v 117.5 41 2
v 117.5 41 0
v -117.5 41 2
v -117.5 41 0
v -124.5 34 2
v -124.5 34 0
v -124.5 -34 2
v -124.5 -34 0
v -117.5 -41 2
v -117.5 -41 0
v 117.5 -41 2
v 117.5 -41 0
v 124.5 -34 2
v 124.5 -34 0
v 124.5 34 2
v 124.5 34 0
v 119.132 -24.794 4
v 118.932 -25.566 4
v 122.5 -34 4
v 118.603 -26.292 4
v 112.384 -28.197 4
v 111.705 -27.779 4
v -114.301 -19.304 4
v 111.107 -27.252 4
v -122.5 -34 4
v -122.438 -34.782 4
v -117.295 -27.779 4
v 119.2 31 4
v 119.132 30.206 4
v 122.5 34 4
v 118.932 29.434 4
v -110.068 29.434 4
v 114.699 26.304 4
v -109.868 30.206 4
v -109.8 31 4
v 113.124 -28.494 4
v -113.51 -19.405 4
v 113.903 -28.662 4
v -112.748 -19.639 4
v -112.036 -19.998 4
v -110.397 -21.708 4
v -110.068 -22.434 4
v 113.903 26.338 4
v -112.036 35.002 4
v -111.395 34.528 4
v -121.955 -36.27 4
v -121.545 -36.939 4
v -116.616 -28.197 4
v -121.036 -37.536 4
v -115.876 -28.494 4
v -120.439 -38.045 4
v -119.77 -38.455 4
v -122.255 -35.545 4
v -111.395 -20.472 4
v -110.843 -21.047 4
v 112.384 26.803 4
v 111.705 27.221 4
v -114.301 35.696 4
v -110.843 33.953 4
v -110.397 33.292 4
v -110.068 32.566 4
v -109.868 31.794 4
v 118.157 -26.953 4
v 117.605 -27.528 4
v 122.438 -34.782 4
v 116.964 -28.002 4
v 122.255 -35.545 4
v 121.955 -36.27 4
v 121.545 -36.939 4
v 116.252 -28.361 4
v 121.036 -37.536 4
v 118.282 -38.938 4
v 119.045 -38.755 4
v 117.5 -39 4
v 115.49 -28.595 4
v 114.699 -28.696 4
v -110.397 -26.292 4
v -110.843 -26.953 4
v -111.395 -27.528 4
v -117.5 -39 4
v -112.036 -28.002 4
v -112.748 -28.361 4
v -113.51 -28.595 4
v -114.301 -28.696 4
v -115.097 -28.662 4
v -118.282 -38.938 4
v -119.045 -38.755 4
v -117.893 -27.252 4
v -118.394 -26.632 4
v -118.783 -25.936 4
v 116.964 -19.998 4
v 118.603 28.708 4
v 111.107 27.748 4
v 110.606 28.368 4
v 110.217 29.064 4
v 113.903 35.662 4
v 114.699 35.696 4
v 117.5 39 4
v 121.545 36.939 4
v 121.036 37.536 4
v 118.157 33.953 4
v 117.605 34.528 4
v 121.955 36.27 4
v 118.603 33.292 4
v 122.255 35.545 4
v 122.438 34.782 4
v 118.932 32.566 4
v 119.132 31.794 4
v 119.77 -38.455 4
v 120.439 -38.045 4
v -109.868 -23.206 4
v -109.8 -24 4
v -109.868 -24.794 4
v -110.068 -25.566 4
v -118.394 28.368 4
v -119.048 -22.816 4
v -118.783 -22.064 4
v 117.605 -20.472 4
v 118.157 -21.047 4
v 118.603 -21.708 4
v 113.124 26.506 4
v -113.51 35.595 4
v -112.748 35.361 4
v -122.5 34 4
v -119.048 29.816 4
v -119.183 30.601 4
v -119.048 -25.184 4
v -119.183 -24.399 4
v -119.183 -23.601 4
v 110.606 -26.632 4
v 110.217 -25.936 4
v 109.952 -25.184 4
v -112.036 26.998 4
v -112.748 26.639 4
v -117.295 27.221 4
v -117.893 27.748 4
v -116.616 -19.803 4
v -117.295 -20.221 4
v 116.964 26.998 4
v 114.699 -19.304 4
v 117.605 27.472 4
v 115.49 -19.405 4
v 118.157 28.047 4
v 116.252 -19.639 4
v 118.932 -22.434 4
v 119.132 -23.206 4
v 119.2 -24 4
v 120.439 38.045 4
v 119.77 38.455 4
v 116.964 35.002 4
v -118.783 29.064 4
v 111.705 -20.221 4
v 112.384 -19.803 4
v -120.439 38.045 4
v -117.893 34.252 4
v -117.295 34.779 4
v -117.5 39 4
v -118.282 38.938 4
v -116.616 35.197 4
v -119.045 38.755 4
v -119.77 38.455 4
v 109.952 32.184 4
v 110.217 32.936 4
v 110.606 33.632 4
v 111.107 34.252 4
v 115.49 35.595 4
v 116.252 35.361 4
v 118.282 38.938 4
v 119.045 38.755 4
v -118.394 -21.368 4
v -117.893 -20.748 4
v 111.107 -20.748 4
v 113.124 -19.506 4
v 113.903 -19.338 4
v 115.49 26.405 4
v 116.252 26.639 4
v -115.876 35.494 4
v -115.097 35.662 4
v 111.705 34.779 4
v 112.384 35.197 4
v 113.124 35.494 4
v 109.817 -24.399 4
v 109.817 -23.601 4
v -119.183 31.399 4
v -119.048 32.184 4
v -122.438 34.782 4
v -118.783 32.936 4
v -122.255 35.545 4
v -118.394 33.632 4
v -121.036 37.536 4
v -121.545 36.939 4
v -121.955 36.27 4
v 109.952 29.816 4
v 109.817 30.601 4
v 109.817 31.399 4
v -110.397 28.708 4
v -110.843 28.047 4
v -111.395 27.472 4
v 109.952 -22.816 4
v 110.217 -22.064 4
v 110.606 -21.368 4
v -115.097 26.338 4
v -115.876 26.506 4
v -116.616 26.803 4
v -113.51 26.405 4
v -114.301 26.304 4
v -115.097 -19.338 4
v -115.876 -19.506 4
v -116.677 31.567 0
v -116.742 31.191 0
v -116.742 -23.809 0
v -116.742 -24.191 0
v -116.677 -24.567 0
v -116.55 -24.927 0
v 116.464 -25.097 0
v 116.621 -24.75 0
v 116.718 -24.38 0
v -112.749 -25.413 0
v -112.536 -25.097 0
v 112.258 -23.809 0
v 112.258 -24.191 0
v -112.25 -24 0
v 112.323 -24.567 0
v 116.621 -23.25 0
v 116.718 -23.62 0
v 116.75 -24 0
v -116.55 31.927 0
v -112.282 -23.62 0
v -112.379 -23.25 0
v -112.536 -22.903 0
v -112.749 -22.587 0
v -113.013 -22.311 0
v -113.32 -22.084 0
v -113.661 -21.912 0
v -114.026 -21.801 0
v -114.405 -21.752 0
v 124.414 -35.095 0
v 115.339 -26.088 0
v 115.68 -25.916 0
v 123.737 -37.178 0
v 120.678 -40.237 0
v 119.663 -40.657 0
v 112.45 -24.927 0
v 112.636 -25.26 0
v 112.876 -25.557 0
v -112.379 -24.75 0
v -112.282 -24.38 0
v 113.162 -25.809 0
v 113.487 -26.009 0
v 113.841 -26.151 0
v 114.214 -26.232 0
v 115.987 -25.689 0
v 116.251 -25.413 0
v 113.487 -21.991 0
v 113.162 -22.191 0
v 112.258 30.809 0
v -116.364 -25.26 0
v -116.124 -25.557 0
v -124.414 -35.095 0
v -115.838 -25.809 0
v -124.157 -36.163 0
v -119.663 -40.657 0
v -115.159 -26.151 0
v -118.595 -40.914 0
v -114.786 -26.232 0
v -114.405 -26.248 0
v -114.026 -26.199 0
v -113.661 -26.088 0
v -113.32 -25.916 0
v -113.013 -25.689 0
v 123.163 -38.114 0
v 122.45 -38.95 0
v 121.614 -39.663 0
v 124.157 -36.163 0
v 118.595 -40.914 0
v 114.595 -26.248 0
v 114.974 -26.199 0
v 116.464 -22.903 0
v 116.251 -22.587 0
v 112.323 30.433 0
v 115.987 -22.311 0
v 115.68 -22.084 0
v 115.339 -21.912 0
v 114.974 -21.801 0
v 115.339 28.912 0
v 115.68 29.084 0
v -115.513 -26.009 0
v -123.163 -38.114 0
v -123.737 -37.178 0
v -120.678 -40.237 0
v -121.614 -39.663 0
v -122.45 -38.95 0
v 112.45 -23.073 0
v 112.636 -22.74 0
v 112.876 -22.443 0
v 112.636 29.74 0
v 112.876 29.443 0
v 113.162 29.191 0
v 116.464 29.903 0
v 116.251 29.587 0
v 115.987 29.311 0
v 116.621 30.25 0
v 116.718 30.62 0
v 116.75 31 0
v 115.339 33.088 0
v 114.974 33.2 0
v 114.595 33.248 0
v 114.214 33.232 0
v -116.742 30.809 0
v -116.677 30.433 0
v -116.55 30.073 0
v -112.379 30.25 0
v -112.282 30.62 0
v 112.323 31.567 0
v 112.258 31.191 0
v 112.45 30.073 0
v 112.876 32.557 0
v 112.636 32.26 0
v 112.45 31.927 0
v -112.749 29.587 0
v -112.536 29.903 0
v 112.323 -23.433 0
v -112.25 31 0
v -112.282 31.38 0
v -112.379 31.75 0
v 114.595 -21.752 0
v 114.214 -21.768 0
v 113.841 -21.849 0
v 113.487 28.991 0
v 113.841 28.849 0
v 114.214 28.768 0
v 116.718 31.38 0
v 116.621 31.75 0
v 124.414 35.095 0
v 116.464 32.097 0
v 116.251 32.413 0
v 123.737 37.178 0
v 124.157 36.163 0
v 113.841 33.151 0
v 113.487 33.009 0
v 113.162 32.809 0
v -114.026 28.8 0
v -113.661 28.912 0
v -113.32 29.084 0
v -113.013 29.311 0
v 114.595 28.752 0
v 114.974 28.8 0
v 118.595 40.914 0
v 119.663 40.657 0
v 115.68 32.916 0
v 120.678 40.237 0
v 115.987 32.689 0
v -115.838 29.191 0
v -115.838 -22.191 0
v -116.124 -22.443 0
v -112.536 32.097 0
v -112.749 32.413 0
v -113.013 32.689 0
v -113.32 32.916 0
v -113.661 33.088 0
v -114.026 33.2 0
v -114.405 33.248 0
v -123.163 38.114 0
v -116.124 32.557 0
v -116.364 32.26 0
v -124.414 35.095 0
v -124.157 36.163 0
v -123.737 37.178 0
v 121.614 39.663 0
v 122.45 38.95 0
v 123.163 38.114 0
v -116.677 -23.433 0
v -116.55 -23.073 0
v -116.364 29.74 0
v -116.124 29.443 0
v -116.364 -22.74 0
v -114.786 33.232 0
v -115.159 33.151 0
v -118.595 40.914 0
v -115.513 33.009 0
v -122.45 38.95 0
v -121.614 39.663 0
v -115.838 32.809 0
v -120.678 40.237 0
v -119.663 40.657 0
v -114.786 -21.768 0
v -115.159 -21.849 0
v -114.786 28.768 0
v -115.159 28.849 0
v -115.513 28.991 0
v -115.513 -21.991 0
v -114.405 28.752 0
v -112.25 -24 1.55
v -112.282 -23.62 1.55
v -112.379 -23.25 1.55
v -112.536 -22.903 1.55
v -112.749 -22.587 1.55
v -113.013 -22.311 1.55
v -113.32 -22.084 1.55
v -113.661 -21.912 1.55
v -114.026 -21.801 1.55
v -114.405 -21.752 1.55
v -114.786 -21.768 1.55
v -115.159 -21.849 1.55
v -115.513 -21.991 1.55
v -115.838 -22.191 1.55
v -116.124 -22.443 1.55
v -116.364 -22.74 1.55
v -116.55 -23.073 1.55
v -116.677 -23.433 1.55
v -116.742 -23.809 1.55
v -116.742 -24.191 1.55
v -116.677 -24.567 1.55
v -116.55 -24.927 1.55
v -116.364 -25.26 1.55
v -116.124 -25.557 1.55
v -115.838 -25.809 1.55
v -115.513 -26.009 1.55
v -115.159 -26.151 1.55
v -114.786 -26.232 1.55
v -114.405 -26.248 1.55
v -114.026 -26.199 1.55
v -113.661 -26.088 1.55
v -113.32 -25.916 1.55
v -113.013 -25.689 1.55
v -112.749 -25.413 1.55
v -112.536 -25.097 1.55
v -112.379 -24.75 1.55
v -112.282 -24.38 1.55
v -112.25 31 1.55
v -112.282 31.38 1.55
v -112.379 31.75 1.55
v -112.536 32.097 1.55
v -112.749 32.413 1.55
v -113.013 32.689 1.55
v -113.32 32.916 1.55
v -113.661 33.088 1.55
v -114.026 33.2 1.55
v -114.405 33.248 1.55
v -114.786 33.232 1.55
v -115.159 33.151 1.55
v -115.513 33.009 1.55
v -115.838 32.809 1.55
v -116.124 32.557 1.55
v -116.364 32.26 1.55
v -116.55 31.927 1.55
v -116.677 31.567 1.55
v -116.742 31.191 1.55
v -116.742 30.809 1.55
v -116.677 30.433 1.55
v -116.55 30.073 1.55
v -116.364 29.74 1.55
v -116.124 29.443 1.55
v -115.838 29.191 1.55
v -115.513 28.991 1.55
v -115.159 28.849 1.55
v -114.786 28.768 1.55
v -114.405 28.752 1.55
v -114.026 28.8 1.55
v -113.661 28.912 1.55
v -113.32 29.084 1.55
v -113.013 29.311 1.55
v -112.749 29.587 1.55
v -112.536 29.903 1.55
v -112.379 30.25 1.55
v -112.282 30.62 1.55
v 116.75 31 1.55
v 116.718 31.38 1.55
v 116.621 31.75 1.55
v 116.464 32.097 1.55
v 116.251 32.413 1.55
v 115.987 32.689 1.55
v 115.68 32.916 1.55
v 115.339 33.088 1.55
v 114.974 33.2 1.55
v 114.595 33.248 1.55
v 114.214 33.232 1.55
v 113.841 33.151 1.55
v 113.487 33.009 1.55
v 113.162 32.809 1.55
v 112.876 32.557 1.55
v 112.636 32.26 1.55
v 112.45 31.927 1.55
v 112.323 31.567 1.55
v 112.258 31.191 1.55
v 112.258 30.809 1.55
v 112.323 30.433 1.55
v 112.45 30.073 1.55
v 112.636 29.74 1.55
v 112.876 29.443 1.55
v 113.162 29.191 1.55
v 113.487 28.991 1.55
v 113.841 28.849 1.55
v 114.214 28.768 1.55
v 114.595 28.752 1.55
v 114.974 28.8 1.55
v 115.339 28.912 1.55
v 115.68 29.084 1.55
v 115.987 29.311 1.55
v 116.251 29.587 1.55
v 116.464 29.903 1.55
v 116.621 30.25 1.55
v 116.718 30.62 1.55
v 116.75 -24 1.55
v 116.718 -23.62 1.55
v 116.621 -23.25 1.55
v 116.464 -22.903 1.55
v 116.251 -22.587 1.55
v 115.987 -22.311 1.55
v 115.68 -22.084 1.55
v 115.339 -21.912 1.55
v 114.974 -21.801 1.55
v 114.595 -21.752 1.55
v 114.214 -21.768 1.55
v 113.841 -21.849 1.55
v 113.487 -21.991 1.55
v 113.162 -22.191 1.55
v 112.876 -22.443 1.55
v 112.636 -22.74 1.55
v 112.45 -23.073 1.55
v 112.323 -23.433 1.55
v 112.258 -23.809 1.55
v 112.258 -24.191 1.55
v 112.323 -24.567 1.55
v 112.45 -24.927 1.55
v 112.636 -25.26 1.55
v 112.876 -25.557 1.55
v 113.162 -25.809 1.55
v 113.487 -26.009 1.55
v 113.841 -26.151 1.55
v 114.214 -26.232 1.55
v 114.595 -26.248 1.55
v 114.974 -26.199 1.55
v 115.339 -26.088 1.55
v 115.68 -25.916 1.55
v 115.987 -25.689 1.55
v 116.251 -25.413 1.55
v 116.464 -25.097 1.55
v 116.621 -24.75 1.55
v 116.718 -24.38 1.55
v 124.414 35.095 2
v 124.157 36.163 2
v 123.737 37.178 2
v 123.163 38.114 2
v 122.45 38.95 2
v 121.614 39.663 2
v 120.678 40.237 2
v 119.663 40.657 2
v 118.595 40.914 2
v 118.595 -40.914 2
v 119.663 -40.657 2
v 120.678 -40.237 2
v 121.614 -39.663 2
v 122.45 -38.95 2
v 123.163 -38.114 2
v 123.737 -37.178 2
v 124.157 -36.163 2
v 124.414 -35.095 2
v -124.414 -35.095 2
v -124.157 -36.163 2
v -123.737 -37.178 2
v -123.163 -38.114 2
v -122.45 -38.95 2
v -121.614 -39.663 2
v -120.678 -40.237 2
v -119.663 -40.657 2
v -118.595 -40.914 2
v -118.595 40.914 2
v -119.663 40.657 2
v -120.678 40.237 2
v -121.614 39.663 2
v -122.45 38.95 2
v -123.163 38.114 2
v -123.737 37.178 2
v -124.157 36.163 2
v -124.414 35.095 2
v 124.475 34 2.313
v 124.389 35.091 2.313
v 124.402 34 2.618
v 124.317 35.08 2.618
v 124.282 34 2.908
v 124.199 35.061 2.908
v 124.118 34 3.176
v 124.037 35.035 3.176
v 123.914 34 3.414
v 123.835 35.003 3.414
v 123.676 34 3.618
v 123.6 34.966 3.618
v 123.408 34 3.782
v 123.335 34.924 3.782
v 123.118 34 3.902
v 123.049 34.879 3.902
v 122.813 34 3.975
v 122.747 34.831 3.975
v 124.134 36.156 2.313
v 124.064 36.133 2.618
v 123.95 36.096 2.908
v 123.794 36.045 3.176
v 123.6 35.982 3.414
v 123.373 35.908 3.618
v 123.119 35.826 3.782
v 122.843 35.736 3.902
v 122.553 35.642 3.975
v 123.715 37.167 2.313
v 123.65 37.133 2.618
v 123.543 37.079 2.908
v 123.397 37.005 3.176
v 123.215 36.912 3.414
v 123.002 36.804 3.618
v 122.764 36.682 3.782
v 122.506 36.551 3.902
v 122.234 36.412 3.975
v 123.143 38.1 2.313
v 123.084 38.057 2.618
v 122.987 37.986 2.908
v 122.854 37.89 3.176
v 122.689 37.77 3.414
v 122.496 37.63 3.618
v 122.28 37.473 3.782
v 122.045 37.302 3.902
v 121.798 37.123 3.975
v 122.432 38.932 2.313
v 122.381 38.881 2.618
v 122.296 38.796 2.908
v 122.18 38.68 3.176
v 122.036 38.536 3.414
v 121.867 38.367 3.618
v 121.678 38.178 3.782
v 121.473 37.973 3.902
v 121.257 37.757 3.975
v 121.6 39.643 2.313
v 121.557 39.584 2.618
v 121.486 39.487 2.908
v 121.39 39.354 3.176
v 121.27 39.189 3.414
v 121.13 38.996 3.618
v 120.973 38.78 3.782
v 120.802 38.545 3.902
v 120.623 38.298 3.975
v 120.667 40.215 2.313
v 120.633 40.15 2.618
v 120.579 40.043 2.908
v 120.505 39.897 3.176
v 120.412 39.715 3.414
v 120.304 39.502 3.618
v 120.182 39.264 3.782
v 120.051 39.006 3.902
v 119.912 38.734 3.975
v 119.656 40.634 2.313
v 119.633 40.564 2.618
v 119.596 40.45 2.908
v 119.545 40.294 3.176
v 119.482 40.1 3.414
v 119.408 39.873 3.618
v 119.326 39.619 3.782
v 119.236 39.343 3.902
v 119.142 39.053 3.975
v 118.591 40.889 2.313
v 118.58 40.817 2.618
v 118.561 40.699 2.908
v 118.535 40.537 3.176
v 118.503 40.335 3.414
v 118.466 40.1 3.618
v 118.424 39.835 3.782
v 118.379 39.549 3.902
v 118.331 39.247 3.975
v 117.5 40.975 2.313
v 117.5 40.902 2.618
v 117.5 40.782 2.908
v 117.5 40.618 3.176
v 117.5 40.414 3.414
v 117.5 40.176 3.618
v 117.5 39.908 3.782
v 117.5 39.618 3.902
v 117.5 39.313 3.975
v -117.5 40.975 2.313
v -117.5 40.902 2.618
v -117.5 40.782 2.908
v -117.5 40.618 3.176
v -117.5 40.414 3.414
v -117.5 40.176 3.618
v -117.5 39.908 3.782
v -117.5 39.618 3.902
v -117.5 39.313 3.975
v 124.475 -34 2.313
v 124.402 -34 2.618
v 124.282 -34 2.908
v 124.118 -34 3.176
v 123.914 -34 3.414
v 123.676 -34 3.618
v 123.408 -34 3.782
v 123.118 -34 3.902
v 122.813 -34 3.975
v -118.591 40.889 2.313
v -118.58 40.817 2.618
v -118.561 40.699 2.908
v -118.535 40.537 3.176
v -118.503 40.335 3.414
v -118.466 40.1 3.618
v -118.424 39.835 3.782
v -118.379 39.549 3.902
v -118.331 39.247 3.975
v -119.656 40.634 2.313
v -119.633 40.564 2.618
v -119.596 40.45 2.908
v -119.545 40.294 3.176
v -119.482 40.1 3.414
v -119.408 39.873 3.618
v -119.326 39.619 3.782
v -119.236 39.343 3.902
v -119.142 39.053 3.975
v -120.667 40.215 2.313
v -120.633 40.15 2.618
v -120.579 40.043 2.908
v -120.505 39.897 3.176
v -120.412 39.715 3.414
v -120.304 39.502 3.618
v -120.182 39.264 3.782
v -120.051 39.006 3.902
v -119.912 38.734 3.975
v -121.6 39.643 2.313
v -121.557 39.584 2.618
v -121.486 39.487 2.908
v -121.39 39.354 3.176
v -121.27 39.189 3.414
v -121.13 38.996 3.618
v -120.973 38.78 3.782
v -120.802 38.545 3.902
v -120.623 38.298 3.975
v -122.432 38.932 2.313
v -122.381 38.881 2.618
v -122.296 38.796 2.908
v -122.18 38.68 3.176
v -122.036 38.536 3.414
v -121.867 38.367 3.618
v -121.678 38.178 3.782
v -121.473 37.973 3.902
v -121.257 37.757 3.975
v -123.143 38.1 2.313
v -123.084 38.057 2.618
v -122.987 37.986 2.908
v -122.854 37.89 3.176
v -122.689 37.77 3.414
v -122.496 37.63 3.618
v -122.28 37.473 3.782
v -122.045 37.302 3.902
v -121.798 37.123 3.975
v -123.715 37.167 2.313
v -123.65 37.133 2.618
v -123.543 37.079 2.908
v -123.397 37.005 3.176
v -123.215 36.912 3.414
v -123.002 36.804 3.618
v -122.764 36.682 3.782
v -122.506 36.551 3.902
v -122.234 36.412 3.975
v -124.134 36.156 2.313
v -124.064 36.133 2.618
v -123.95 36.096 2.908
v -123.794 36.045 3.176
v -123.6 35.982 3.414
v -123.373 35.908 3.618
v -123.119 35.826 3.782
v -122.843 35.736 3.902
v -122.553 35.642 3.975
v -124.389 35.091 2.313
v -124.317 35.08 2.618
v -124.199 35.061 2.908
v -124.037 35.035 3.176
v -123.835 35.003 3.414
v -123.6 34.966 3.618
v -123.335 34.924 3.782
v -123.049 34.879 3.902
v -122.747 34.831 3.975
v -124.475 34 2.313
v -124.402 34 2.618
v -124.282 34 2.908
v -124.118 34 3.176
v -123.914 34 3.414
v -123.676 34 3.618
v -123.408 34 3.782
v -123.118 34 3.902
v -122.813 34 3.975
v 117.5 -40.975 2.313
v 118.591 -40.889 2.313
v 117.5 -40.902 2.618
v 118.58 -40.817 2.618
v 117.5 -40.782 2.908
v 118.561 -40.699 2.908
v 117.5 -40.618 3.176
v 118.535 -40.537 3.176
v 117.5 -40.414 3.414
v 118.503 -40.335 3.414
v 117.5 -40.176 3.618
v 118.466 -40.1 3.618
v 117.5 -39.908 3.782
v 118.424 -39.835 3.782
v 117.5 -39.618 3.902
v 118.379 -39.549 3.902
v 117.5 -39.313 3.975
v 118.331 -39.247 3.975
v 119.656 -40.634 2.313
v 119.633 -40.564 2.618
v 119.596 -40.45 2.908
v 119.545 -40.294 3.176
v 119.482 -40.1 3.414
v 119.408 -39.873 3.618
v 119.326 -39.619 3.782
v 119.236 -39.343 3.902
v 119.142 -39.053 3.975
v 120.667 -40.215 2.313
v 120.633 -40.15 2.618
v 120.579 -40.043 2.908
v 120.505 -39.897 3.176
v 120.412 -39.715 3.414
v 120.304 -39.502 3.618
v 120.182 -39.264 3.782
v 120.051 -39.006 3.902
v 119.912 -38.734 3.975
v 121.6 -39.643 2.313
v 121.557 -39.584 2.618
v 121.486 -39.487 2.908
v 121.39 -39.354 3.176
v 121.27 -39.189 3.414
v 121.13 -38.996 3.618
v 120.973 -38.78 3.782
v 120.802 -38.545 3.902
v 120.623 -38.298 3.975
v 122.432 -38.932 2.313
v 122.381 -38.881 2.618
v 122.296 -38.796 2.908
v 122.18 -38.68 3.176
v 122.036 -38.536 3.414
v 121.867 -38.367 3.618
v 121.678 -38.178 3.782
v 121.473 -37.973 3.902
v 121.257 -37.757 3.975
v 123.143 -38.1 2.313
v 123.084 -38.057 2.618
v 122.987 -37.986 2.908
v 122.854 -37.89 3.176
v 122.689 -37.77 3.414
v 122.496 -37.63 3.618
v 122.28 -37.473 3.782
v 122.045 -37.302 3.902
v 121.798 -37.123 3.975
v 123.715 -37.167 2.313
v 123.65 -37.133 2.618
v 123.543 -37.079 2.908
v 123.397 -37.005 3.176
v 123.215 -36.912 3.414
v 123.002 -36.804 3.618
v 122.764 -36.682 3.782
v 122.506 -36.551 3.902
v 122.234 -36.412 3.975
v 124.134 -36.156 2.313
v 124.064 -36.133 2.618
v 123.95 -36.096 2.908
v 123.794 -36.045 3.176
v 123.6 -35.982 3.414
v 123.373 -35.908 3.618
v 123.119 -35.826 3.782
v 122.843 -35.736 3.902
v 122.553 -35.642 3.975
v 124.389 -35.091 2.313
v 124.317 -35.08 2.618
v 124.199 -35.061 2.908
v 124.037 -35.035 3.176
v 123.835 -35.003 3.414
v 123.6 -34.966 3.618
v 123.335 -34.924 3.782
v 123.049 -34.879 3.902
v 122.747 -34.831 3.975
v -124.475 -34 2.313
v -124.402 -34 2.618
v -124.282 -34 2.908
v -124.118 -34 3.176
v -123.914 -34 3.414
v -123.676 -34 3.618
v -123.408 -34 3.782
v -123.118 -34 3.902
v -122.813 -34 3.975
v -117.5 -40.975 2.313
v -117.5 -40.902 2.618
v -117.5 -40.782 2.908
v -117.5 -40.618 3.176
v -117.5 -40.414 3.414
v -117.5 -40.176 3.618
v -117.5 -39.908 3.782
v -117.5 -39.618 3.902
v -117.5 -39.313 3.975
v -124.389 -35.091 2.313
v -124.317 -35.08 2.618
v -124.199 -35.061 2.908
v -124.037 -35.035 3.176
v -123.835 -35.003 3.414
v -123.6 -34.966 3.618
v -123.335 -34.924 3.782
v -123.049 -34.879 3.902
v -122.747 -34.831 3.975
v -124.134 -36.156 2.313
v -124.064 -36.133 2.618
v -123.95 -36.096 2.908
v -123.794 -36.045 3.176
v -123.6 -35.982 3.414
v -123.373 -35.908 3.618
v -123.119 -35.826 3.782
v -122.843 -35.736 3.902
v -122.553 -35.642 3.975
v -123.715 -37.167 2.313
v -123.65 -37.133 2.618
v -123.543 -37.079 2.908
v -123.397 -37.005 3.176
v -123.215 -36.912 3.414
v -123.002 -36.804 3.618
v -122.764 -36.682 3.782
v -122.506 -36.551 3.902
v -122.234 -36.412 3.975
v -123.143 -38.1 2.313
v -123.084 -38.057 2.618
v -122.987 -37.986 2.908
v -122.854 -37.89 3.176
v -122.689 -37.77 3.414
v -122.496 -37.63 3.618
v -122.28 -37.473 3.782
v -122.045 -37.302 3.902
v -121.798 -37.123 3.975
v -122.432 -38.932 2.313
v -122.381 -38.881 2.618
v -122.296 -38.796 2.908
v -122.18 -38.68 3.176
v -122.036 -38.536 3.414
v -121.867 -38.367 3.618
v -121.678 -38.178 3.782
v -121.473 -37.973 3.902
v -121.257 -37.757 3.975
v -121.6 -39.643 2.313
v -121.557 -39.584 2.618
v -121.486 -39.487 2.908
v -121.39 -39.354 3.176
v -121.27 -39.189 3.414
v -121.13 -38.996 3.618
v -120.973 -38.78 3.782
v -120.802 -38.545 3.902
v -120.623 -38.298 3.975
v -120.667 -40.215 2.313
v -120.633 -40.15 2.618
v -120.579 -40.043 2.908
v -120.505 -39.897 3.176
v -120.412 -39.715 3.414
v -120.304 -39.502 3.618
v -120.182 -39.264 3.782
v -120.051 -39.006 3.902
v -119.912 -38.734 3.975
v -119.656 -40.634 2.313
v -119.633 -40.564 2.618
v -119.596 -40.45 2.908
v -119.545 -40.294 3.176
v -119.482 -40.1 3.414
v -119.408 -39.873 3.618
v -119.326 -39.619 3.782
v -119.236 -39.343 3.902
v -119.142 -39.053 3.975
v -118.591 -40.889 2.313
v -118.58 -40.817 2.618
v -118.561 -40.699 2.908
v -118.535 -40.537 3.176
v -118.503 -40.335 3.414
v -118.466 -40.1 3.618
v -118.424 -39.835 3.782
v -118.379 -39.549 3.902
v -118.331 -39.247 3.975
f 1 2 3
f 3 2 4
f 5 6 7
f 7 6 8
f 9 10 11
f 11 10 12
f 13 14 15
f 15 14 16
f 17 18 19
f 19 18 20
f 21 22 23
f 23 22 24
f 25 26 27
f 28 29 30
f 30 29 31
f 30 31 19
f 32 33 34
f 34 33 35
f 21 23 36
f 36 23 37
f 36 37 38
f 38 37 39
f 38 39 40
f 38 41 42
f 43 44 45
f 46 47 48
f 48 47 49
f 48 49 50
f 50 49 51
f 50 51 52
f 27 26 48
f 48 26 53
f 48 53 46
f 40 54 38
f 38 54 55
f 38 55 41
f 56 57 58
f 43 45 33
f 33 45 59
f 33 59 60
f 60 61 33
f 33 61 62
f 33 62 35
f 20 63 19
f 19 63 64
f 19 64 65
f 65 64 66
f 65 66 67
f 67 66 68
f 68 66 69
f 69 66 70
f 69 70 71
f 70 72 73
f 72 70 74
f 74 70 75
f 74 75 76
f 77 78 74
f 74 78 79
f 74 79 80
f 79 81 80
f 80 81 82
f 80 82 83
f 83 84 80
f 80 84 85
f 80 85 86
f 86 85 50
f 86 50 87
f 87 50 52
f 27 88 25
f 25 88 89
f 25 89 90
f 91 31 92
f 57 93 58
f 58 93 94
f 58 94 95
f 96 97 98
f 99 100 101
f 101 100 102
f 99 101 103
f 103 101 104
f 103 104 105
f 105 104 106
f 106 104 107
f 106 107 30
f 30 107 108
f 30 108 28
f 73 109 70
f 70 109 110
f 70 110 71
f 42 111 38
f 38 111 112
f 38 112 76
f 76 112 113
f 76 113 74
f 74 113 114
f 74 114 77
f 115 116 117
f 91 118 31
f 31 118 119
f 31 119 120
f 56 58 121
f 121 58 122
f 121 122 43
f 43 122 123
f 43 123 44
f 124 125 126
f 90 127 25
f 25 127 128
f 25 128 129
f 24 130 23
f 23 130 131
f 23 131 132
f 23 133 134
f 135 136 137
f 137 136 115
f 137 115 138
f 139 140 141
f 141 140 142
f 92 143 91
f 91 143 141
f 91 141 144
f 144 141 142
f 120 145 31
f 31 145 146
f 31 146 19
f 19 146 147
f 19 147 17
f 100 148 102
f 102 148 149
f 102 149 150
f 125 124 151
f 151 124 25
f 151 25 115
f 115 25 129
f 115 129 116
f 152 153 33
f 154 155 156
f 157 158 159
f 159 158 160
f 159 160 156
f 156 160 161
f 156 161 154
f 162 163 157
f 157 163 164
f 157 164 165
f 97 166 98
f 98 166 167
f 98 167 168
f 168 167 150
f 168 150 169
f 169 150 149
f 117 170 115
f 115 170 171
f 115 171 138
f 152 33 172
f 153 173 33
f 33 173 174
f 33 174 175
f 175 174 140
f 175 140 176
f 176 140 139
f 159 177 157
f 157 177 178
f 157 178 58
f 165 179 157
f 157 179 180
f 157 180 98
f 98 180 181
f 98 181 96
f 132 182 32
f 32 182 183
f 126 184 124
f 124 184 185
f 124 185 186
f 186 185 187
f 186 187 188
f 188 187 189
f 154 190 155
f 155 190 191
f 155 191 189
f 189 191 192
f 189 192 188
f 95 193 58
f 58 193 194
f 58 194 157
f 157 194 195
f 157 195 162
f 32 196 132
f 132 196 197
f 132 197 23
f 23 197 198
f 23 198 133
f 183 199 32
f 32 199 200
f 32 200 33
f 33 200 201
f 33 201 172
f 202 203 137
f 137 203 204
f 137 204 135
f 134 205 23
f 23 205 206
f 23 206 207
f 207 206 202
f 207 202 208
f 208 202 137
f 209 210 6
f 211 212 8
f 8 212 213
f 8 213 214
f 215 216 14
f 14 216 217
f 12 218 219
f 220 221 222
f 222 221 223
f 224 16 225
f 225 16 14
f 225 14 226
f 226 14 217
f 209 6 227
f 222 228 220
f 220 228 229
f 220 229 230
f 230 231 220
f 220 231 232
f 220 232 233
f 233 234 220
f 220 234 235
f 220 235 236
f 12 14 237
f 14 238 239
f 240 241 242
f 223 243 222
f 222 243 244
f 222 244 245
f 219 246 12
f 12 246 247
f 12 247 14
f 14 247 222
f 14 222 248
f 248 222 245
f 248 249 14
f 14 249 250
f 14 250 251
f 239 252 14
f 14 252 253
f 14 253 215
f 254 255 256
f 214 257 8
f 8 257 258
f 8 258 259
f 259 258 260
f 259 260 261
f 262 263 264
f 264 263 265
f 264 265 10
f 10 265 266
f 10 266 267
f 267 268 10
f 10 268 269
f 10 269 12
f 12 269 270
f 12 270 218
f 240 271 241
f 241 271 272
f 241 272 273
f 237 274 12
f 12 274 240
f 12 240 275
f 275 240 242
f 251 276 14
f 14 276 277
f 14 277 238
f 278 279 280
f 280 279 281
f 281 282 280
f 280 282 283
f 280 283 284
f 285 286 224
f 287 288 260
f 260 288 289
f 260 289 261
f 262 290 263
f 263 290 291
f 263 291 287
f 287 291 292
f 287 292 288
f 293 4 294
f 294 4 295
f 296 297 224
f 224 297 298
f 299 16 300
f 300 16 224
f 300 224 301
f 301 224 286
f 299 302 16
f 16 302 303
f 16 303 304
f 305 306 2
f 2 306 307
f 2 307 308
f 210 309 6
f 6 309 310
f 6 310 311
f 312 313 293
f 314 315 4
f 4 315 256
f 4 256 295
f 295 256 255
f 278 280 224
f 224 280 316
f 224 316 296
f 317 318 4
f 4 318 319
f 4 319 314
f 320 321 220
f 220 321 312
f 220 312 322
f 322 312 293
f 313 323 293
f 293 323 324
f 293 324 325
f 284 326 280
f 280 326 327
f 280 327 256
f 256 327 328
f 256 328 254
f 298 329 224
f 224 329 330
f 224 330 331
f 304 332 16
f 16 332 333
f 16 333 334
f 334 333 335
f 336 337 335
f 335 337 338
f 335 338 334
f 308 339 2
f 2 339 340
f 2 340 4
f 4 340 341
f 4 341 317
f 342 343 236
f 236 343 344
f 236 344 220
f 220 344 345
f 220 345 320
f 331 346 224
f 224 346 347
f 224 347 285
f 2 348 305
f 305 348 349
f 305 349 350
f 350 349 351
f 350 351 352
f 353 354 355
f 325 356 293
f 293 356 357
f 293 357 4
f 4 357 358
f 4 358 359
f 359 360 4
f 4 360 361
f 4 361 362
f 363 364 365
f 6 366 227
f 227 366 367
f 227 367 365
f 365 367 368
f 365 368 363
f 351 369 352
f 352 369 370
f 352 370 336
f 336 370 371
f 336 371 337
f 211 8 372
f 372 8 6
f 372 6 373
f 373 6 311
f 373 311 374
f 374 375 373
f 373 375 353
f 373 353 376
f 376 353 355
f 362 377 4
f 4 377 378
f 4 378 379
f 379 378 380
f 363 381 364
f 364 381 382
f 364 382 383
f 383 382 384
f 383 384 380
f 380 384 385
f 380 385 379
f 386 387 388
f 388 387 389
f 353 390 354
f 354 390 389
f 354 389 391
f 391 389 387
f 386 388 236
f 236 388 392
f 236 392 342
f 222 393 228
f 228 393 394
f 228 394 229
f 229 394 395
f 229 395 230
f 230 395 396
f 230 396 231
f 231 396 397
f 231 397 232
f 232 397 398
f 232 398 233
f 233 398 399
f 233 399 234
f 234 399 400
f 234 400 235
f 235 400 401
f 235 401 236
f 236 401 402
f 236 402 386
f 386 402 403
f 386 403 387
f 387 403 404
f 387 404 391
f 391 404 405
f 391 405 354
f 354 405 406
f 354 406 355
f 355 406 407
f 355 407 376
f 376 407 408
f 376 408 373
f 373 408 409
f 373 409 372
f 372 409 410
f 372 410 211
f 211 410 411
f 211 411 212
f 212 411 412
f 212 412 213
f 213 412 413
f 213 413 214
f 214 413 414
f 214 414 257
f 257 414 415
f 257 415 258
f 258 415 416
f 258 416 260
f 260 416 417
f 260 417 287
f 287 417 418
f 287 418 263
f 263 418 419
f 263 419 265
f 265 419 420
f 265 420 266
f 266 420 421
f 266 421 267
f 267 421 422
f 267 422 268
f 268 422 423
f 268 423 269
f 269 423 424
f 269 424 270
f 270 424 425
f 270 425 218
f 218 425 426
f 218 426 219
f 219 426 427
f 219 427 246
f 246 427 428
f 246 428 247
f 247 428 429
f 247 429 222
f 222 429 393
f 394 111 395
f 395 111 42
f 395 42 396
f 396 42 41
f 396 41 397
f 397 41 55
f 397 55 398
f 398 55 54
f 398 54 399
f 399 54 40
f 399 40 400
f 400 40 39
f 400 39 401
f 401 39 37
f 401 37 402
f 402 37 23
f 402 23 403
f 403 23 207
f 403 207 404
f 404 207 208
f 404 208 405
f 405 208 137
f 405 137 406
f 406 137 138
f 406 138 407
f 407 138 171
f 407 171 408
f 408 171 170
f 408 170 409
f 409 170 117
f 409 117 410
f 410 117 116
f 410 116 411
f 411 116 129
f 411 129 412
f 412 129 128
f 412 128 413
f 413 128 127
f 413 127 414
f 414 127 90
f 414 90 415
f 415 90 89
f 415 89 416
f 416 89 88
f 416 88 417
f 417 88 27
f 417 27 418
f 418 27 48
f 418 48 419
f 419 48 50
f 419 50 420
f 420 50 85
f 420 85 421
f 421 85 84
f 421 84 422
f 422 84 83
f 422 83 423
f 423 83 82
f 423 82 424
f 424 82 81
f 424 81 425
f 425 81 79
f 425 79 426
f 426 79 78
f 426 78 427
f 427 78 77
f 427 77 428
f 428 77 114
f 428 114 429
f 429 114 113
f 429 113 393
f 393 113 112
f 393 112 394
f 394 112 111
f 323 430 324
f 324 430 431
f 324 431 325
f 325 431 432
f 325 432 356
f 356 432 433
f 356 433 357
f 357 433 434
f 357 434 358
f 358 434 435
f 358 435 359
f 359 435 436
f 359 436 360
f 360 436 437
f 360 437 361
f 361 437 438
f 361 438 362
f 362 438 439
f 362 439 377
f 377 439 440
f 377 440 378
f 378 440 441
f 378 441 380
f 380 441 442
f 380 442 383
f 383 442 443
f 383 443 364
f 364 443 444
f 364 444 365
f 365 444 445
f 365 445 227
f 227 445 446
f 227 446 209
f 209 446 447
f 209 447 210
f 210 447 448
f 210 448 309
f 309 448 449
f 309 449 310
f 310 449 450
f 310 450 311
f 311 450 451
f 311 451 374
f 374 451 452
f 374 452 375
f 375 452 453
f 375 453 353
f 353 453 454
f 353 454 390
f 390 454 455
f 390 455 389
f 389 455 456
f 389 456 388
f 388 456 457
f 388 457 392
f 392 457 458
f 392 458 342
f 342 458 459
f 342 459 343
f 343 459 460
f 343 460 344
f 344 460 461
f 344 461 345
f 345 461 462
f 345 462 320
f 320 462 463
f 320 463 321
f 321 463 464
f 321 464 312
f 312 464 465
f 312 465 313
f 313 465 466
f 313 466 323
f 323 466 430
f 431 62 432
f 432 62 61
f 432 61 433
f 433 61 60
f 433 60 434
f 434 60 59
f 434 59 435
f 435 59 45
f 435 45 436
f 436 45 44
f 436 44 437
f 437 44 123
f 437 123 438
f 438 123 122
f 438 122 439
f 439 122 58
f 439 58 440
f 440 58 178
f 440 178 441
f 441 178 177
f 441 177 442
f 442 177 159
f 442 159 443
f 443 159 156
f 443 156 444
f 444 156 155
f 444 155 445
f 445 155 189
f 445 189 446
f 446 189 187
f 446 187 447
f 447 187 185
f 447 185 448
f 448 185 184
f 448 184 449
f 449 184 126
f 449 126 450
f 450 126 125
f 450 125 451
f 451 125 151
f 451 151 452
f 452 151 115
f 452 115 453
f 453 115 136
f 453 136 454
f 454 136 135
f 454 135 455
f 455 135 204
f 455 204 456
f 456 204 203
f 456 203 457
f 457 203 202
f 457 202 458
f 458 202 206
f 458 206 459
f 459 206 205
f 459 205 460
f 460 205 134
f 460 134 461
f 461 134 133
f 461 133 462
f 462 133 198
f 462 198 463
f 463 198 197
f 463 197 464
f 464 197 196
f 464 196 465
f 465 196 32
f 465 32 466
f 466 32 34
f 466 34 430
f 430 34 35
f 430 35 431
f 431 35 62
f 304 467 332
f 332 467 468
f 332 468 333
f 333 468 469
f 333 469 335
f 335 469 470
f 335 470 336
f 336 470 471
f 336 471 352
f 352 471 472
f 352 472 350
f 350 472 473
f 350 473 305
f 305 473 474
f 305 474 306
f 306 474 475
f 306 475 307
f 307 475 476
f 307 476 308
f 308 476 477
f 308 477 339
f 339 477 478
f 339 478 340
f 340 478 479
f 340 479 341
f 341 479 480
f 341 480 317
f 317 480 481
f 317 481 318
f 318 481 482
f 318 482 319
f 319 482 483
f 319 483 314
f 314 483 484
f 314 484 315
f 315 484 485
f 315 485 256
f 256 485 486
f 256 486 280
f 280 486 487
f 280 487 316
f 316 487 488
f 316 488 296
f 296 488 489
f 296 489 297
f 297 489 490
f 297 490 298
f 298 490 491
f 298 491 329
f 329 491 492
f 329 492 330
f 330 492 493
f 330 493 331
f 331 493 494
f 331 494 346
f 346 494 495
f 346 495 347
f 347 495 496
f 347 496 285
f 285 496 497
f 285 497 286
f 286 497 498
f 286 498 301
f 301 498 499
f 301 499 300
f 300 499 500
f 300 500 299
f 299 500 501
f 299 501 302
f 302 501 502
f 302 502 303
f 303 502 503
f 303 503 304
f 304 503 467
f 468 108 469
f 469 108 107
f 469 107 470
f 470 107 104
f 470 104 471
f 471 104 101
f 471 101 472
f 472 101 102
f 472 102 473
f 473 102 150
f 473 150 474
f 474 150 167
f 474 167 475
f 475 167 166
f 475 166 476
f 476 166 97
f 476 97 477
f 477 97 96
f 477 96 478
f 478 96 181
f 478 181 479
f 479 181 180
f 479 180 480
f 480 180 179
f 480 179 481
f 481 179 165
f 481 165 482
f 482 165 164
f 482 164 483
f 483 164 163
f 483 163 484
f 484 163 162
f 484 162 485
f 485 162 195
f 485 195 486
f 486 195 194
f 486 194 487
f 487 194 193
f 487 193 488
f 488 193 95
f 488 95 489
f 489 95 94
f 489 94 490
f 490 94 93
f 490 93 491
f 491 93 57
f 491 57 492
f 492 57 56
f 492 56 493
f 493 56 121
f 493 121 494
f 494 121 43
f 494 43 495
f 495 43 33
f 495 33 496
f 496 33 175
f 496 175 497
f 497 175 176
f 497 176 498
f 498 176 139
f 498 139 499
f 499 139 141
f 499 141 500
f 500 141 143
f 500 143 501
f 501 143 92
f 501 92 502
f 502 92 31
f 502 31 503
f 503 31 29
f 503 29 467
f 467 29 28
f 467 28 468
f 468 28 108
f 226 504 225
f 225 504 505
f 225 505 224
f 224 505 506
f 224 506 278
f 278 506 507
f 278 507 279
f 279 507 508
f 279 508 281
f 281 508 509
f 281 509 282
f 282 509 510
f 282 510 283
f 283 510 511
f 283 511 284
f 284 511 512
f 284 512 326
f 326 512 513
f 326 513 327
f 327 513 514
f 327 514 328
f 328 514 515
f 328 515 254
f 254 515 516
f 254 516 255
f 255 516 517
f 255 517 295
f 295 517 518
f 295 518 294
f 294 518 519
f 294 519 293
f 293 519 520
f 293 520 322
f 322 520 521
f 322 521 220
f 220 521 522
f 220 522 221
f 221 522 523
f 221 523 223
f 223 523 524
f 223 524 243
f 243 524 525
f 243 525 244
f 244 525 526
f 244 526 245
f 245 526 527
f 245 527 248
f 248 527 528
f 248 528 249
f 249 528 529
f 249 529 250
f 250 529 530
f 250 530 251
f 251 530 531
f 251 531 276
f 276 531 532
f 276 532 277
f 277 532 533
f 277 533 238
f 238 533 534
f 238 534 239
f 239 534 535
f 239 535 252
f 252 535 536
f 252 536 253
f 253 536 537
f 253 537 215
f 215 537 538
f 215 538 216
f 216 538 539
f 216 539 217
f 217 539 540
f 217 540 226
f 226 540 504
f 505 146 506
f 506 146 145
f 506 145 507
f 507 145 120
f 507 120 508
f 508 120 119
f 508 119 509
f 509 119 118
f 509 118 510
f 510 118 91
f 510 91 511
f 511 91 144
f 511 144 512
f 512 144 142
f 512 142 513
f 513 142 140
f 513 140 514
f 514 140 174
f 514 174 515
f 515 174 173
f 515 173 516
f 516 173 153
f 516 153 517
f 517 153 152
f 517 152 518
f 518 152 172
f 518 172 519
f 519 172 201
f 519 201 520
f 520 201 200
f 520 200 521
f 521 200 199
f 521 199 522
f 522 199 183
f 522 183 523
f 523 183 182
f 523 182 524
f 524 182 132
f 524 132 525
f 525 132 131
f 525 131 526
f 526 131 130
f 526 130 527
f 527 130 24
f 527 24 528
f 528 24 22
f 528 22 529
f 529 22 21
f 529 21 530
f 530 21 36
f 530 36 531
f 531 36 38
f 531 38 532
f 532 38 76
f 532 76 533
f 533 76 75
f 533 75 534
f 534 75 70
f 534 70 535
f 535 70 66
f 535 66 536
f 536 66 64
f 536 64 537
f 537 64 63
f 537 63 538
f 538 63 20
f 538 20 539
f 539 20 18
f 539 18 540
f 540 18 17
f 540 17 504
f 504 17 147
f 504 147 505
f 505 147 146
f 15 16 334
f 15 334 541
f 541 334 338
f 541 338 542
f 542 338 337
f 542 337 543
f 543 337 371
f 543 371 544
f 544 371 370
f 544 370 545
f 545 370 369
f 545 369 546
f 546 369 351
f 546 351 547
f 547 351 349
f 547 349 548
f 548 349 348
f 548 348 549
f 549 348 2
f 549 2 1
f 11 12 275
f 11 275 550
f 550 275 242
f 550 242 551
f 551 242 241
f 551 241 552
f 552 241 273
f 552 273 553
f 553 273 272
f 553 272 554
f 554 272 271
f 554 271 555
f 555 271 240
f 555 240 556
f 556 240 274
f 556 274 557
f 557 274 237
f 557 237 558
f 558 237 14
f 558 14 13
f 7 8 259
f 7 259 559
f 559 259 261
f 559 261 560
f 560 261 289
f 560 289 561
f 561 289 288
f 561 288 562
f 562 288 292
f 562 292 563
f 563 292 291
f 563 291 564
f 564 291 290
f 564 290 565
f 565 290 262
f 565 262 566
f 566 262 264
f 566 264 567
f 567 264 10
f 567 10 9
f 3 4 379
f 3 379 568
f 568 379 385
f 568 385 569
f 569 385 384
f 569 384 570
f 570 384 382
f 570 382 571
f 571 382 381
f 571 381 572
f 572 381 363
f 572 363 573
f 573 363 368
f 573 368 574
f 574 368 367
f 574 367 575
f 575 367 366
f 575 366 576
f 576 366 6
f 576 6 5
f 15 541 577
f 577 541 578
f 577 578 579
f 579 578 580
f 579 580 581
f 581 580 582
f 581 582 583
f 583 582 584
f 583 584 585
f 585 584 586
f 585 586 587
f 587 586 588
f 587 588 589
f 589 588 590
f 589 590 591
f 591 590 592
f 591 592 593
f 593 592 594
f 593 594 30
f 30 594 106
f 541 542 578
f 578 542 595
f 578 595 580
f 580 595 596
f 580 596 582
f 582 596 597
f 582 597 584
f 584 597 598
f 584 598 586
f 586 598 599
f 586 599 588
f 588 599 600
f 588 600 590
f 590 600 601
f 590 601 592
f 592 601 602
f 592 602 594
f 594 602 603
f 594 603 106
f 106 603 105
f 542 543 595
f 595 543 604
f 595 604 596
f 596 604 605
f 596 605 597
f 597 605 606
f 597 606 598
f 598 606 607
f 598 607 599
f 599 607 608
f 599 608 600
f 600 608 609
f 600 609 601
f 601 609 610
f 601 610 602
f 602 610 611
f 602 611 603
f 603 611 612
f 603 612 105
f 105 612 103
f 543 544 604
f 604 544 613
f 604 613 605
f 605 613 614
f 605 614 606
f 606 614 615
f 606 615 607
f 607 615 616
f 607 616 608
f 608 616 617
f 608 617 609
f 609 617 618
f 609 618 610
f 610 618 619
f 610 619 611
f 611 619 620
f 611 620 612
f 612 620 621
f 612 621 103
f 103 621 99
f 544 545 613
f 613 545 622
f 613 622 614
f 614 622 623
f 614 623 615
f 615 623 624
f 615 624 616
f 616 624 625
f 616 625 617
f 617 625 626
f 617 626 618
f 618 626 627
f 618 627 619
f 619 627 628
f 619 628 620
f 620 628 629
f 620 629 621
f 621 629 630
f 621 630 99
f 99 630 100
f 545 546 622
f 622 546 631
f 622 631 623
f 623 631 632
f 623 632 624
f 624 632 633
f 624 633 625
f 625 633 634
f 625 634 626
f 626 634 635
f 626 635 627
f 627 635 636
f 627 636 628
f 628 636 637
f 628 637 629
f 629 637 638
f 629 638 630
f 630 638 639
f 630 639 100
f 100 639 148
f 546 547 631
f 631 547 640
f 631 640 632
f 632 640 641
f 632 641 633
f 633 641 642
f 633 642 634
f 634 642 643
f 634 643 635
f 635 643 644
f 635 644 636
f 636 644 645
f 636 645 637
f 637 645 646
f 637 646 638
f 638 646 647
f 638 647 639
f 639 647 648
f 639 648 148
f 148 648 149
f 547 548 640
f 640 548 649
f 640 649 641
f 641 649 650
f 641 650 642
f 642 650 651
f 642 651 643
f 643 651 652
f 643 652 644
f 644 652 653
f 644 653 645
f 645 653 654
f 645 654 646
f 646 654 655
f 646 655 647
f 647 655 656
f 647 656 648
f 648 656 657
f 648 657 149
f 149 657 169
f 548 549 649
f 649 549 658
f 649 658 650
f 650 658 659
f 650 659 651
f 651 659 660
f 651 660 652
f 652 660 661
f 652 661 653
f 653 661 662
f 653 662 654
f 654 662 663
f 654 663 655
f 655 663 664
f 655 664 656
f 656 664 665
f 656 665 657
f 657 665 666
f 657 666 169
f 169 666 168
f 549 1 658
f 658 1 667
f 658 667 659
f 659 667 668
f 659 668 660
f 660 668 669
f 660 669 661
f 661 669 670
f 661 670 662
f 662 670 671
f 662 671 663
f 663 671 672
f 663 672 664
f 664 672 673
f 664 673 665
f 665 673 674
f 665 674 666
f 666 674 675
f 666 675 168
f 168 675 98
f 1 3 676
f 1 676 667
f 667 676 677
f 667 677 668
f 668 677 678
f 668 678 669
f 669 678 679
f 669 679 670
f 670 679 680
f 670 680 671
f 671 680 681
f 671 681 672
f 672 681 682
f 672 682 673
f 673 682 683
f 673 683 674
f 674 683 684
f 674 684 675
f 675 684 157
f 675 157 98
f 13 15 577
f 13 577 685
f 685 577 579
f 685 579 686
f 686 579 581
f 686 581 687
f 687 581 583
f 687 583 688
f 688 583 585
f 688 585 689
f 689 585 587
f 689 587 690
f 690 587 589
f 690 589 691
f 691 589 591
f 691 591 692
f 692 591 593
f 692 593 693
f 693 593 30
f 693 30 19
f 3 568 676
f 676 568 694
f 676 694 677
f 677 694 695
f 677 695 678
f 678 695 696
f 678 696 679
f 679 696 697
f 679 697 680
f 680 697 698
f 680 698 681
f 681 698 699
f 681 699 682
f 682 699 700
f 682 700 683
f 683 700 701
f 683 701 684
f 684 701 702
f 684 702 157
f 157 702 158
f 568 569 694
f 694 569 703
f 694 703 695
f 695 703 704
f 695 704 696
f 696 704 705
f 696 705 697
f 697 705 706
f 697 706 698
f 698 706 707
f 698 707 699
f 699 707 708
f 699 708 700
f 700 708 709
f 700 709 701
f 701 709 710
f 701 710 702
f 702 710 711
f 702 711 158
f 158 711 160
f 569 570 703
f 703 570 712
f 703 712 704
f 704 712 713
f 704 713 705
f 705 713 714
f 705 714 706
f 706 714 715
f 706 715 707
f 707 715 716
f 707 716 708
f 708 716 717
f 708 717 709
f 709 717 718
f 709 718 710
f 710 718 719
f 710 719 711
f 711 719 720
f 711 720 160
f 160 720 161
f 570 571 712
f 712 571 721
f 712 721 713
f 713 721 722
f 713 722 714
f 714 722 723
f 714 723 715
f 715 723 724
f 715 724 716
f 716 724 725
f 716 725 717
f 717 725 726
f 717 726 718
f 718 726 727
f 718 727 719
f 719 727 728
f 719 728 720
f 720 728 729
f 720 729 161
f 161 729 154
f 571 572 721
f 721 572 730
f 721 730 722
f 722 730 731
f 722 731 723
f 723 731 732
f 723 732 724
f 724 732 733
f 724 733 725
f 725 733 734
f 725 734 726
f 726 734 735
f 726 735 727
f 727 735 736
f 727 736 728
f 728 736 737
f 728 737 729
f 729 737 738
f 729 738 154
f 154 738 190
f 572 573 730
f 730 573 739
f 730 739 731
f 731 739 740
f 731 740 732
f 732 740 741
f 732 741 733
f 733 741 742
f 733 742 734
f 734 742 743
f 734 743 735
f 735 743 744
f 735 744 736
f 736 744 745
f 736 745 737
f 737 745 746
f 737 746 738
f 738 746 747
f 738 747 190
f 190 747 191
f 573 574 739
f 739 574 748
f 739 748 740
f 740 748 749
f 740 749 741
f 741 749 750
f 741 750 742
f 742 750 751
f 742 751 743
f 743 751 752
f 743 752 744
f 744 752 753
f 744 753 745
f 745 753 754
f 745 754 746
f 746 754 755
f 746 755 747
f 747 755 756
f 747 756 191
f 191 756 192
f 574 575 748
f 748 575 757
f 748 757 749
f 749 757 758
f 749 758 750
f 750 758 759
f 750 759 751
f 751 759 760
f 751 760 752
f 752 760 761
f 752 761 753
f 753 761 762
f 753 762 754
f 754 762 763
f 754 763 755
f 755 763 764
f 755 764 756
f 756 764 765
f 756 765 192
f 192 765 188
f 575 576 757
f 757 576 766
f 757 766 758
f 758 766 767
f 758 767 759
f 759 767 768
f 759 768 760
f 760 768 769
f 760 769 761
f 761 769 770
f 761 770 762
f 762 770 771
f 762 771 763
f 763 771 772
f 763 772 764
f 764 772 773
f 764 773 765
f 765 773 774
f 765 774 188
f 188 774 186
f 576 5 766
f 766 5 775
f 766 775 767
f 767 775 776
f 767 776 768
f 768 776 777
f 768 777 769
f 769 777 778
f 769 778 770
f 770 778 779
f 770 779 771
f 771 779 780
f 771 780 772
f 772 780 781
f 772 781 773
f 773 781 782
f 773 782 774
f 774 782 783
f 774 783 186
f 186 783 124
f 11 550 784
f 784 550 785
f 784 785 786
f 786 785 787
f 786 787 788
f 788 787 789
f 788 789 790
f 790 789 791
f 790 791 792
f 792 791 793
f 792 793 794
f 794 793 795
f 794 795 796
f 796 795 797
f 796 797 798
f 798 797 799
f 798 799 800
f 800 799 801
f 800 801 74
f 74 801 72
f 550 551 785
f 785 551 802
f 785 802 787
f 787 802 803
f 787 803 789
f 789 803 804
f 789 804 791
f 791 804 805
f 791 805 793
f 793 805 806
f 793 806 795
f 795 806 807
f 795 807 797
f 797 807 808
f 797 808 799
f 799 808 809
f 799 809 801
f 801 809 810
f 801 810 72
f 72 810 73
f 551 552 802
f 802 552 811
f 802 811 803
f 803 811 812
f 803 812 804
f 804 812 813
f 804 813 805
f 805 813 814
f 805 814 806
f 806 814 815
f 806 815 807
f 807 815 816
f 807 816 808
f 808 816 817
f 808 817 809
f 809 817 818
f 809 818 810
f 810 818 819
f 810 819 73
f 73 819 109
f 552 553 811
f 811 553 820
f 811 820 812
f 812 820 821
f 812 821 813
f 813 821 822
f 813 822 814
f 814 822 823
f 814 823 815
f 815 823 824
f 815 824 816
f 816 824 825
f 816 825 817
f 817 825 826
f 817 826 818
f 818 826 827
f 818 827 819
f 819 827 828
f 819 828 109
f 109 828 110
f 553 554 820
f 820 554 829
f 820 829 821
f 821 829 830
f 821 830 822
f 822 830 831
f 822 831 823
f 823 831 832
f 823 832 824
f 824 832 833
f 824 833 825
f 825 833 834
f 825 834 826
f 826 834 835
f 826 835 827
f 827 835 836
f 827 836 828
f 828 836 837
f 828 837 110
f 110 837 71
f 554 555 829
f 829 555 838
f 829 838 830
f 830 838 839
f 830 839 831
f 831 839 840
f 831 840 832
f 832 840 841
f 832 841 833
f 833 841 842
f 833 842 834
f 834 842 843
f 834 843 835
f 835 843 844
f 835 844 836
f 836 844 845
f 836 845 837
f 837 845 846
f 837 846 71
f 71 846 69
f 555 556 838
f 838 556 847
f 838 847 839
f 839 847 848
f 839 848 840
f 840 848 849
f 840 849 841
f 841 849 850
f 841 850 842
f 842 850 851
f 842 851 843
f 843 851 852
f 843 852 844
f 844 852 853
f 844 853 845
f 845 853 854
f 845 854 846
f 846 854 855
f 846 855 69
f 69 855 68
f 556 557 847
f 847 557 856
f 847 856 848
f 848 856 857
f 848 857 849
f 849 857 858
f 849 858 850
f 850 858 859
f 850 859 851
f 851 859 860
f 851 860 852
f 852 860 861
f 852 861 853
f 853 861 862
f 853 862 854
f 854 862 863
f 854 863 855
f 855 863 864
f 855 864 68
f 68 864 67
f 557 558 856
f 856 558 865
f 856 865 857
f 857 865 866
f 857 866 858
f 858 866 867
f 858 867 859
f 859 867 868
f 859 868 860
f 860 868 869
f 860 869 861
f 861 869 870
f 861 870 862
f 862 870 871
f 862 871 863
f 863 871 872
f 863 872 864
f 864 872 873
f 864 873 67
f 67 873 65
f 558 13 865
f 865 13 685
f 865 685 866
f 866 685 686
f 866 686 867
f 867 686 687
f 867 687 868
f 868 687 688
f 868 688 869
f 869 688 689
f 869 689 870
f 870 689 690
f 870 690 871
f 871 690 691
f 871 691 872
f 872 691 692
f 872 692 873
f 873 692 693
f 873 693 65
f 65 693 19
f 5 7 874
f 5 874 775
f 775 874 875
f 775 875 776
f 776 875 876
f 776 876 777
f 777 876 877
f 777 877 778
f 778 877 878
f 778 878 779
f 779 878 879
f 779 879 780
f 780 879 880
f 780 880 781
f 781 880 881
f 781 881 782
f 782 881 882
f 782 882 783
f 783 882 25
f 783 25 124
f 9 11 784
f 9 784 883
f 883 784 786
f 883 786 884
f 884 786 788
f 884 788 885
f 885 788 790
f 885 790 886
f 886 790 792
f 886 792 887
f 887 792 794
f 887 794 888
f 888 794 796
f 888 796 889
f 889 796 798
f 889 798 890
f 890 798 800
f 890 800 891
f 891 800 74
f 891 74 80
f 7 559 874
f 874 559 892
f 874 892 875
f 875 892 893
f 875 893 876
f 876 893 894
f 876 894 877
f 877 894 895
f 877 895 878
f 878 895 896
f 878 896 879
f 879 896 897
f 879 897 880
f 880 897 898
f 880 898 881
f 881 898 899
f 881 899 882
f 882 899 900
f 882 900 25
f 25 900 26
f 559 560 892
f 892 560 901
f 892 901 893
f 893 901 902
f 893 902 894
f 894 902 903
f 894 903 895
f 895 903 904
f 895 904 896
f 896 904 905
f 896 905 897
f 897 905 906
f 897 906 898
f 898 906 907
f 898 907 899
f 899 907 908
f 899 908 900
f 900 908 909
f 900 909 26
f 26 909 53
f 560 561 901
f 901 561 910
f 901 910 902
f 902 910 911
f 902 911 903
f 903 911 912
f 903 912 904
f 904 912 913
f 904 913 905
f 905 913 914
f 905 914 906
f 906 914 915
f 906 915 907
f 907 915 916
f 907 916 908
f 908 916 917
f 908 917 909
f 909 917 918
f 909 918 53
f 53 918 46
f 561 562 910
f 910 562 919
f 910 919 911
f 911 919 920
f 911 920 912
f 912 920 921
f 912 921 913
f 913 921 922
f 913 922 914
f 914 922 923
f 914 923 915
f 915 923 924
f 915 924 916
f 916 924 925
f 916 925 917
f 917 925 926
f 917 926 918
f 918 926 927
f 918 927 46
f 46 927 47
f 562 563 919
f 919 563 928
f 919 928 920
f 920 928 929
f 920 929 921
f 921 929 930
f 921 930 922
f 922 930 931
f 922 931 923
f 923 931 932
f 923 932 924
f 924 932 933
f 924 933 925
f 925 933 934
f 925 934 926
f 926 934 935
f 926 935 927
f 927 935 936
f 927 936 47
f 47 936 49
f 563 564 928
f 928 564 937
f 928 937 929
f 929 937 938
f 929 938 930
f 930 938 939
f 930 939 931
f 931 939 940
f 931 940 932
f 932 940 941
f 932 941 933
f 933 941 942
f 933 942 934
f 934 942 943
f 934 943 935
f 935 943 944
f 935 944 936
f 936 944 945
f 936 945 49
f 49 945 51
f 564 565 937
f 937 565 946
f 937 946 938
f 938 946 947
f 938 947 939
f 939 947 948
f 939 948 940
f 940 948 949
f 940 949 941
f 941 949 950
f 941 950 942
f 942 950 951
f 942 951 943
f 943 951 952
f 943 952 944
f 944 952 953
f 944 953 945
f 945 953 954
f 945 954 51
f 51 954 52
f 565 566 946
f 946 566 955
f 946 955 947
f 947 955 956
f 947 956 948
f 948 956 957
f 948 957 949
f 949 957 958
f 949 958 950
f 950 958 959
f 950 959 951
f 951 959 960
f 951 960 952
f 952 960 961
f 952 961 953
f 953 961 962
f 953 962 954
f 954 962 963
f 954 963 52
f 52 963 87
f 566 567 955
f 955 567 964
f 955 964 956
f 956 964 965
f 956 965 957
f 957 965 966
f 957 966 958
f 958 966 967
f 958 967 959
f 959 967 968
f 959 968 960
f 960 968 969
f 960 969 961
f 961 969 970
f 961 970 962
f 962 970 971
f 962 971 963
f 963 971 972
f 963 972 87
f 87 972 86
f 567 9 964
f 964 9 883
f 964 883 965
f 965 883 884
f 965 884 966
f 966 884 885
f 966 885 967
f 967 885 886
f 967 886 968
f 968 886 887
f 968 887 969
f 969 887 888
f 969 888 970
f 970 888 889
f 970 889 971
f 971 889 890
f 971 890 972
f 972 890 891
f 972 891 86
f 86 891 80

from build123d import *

# Parameters (mm, degrees)
ESQUISSE1_W                                 = 249
ESQUISSE1_H                                 = 82
BOSS_EXTRU_1_DEPTH                          = 4
FRAISAGE_POUR_VIS_T_TE_FRAIS_E_M42_AT_COUNT = 2
FRAISAGE_POUR_VIS_T_TE_FRAIS_E_M42_AT_PITCH = 55
FRAISAGE_POUR_VIS_T_TE_FRAIS_E_M42_2_COUNT  = 2
FRAISAGE_POUR_VIS_T_TE_FRAIS_E_M42_2_PITCH  = 229
FRAISAGE_POUR_VIS_T_TE_FRAIS_E_M42_3_COUNT  = 2
FRAISAGE_POUR_VIS_T_TE_FRAIS_E_M42_3_PITCH  = 235.512207752
CONG_1_R                                    = 7
CONG_2_R                                    = 2


with BuildPart() as part:
    # Esquisse1 → Boss.-Extru.1 (new body)
    with BuildSketch(Plane.XY):
        Rectangle(ESQUISSE1_W, ESQUISSE1_H)
    extrude(amount=BOSS_EXTRU_1_DEPTH)

    # Esquisse6 → Fraisage pour vis à tête fraisée M42 (revolve, cut)
    with BuildSketch(Plane(origin=(-114.5, -24, 4), x_dir=(0, -1, 0), z_dir=(1, 0, 0))):
        Polygon((0, 0), (0, 4), (2.25, 4), (2.25, 2.45), (4.7, 0), align=None)
    fraisage_pour_vis_t_te_frais_e_m42 = revolve(axis=Axis((-114.5, -24, 10.35), (0, 0, -1)), mode=Mode.SUBTRACT)

    # Fraisage pour vis à tête fraisée M42 at: Fraisage pour vis à tête fraisée M42 ×2
    with Locations(*[(0, i * FRAISAGE_POUR_VIS_T_TE_FRAIS_E_M42_AT_PITCH, 0) for i in range(1, FRAISAGE_POUR_VIS_T_TE_FRAIS_E_M42_AT_COUNT)]):
        add(fraisage_pour_vis_t_te_frais_e_m42, mode=Mode.SUBTRACT)

    # Fraisage pour vis _ t_te frais_e M42 2: Fraisage pour vis à tête fraisée M42 ×2
    with Locations(*[(i * FRAISAGE_POUR_VIS_T_TE_FRAIS_E_M42_2_PITCH, 0, 0) for i in range(1, FRAISAGE_POUR_VIS_T_TE_FRAIS_E_M42_2_COUNT)]):
        add(fraisage_pour_vis_t_te_frais_e_m42, mode=Mode.SUBTRACT)

    # Fraisage pour vis _ t_te frais_e M42 3: Fraisage pour vis à tête fraisée M42 ×2
    with Locations(*[Vector(0.972348747, 0.233533542, 0) * (i * FRAISAGE_POUR_VIS_T_TE_FRAIS_E_M42_3_PITCH) for i in range(1, FRAISAGE_POUR_VIS_T_TE_FRAIS_E_M42_3_COUNT)]):
        add(fraisage_pour_vis_t_te_frais_e_m42, mode=Mode.SUBTRACT)

    # Congé1
    cong_1_edges = [part.edges().sort_by_distance(p)[0] for p in [
        (124.5, 41, 2),
        (124.5, -41, 2),
        (-124.5, -41, 2),
        (-124.5, 41, 2),
    ]]
    fillet(cong_1_edges, radius=CONG_1_R)

    # Congé2
    cong_2_edges = [part.edges().sort_by_distance(p)[0] for p in [
        (0, 41, 4),
        (124.5, 0, 4),
        (-124.5, 0, 4),
        (0, -41, 4),
        (-122.449747468, 38.949747468, 4),
        (-122.449747468, -38.949747468, 4),
        (122.449747468, -38.949747468, 4),
        (122.449747468, 38.949747468, 4),
    ]]
    fillet(cong_2_edges, radius=CONG_2_R)


solid = part.part
